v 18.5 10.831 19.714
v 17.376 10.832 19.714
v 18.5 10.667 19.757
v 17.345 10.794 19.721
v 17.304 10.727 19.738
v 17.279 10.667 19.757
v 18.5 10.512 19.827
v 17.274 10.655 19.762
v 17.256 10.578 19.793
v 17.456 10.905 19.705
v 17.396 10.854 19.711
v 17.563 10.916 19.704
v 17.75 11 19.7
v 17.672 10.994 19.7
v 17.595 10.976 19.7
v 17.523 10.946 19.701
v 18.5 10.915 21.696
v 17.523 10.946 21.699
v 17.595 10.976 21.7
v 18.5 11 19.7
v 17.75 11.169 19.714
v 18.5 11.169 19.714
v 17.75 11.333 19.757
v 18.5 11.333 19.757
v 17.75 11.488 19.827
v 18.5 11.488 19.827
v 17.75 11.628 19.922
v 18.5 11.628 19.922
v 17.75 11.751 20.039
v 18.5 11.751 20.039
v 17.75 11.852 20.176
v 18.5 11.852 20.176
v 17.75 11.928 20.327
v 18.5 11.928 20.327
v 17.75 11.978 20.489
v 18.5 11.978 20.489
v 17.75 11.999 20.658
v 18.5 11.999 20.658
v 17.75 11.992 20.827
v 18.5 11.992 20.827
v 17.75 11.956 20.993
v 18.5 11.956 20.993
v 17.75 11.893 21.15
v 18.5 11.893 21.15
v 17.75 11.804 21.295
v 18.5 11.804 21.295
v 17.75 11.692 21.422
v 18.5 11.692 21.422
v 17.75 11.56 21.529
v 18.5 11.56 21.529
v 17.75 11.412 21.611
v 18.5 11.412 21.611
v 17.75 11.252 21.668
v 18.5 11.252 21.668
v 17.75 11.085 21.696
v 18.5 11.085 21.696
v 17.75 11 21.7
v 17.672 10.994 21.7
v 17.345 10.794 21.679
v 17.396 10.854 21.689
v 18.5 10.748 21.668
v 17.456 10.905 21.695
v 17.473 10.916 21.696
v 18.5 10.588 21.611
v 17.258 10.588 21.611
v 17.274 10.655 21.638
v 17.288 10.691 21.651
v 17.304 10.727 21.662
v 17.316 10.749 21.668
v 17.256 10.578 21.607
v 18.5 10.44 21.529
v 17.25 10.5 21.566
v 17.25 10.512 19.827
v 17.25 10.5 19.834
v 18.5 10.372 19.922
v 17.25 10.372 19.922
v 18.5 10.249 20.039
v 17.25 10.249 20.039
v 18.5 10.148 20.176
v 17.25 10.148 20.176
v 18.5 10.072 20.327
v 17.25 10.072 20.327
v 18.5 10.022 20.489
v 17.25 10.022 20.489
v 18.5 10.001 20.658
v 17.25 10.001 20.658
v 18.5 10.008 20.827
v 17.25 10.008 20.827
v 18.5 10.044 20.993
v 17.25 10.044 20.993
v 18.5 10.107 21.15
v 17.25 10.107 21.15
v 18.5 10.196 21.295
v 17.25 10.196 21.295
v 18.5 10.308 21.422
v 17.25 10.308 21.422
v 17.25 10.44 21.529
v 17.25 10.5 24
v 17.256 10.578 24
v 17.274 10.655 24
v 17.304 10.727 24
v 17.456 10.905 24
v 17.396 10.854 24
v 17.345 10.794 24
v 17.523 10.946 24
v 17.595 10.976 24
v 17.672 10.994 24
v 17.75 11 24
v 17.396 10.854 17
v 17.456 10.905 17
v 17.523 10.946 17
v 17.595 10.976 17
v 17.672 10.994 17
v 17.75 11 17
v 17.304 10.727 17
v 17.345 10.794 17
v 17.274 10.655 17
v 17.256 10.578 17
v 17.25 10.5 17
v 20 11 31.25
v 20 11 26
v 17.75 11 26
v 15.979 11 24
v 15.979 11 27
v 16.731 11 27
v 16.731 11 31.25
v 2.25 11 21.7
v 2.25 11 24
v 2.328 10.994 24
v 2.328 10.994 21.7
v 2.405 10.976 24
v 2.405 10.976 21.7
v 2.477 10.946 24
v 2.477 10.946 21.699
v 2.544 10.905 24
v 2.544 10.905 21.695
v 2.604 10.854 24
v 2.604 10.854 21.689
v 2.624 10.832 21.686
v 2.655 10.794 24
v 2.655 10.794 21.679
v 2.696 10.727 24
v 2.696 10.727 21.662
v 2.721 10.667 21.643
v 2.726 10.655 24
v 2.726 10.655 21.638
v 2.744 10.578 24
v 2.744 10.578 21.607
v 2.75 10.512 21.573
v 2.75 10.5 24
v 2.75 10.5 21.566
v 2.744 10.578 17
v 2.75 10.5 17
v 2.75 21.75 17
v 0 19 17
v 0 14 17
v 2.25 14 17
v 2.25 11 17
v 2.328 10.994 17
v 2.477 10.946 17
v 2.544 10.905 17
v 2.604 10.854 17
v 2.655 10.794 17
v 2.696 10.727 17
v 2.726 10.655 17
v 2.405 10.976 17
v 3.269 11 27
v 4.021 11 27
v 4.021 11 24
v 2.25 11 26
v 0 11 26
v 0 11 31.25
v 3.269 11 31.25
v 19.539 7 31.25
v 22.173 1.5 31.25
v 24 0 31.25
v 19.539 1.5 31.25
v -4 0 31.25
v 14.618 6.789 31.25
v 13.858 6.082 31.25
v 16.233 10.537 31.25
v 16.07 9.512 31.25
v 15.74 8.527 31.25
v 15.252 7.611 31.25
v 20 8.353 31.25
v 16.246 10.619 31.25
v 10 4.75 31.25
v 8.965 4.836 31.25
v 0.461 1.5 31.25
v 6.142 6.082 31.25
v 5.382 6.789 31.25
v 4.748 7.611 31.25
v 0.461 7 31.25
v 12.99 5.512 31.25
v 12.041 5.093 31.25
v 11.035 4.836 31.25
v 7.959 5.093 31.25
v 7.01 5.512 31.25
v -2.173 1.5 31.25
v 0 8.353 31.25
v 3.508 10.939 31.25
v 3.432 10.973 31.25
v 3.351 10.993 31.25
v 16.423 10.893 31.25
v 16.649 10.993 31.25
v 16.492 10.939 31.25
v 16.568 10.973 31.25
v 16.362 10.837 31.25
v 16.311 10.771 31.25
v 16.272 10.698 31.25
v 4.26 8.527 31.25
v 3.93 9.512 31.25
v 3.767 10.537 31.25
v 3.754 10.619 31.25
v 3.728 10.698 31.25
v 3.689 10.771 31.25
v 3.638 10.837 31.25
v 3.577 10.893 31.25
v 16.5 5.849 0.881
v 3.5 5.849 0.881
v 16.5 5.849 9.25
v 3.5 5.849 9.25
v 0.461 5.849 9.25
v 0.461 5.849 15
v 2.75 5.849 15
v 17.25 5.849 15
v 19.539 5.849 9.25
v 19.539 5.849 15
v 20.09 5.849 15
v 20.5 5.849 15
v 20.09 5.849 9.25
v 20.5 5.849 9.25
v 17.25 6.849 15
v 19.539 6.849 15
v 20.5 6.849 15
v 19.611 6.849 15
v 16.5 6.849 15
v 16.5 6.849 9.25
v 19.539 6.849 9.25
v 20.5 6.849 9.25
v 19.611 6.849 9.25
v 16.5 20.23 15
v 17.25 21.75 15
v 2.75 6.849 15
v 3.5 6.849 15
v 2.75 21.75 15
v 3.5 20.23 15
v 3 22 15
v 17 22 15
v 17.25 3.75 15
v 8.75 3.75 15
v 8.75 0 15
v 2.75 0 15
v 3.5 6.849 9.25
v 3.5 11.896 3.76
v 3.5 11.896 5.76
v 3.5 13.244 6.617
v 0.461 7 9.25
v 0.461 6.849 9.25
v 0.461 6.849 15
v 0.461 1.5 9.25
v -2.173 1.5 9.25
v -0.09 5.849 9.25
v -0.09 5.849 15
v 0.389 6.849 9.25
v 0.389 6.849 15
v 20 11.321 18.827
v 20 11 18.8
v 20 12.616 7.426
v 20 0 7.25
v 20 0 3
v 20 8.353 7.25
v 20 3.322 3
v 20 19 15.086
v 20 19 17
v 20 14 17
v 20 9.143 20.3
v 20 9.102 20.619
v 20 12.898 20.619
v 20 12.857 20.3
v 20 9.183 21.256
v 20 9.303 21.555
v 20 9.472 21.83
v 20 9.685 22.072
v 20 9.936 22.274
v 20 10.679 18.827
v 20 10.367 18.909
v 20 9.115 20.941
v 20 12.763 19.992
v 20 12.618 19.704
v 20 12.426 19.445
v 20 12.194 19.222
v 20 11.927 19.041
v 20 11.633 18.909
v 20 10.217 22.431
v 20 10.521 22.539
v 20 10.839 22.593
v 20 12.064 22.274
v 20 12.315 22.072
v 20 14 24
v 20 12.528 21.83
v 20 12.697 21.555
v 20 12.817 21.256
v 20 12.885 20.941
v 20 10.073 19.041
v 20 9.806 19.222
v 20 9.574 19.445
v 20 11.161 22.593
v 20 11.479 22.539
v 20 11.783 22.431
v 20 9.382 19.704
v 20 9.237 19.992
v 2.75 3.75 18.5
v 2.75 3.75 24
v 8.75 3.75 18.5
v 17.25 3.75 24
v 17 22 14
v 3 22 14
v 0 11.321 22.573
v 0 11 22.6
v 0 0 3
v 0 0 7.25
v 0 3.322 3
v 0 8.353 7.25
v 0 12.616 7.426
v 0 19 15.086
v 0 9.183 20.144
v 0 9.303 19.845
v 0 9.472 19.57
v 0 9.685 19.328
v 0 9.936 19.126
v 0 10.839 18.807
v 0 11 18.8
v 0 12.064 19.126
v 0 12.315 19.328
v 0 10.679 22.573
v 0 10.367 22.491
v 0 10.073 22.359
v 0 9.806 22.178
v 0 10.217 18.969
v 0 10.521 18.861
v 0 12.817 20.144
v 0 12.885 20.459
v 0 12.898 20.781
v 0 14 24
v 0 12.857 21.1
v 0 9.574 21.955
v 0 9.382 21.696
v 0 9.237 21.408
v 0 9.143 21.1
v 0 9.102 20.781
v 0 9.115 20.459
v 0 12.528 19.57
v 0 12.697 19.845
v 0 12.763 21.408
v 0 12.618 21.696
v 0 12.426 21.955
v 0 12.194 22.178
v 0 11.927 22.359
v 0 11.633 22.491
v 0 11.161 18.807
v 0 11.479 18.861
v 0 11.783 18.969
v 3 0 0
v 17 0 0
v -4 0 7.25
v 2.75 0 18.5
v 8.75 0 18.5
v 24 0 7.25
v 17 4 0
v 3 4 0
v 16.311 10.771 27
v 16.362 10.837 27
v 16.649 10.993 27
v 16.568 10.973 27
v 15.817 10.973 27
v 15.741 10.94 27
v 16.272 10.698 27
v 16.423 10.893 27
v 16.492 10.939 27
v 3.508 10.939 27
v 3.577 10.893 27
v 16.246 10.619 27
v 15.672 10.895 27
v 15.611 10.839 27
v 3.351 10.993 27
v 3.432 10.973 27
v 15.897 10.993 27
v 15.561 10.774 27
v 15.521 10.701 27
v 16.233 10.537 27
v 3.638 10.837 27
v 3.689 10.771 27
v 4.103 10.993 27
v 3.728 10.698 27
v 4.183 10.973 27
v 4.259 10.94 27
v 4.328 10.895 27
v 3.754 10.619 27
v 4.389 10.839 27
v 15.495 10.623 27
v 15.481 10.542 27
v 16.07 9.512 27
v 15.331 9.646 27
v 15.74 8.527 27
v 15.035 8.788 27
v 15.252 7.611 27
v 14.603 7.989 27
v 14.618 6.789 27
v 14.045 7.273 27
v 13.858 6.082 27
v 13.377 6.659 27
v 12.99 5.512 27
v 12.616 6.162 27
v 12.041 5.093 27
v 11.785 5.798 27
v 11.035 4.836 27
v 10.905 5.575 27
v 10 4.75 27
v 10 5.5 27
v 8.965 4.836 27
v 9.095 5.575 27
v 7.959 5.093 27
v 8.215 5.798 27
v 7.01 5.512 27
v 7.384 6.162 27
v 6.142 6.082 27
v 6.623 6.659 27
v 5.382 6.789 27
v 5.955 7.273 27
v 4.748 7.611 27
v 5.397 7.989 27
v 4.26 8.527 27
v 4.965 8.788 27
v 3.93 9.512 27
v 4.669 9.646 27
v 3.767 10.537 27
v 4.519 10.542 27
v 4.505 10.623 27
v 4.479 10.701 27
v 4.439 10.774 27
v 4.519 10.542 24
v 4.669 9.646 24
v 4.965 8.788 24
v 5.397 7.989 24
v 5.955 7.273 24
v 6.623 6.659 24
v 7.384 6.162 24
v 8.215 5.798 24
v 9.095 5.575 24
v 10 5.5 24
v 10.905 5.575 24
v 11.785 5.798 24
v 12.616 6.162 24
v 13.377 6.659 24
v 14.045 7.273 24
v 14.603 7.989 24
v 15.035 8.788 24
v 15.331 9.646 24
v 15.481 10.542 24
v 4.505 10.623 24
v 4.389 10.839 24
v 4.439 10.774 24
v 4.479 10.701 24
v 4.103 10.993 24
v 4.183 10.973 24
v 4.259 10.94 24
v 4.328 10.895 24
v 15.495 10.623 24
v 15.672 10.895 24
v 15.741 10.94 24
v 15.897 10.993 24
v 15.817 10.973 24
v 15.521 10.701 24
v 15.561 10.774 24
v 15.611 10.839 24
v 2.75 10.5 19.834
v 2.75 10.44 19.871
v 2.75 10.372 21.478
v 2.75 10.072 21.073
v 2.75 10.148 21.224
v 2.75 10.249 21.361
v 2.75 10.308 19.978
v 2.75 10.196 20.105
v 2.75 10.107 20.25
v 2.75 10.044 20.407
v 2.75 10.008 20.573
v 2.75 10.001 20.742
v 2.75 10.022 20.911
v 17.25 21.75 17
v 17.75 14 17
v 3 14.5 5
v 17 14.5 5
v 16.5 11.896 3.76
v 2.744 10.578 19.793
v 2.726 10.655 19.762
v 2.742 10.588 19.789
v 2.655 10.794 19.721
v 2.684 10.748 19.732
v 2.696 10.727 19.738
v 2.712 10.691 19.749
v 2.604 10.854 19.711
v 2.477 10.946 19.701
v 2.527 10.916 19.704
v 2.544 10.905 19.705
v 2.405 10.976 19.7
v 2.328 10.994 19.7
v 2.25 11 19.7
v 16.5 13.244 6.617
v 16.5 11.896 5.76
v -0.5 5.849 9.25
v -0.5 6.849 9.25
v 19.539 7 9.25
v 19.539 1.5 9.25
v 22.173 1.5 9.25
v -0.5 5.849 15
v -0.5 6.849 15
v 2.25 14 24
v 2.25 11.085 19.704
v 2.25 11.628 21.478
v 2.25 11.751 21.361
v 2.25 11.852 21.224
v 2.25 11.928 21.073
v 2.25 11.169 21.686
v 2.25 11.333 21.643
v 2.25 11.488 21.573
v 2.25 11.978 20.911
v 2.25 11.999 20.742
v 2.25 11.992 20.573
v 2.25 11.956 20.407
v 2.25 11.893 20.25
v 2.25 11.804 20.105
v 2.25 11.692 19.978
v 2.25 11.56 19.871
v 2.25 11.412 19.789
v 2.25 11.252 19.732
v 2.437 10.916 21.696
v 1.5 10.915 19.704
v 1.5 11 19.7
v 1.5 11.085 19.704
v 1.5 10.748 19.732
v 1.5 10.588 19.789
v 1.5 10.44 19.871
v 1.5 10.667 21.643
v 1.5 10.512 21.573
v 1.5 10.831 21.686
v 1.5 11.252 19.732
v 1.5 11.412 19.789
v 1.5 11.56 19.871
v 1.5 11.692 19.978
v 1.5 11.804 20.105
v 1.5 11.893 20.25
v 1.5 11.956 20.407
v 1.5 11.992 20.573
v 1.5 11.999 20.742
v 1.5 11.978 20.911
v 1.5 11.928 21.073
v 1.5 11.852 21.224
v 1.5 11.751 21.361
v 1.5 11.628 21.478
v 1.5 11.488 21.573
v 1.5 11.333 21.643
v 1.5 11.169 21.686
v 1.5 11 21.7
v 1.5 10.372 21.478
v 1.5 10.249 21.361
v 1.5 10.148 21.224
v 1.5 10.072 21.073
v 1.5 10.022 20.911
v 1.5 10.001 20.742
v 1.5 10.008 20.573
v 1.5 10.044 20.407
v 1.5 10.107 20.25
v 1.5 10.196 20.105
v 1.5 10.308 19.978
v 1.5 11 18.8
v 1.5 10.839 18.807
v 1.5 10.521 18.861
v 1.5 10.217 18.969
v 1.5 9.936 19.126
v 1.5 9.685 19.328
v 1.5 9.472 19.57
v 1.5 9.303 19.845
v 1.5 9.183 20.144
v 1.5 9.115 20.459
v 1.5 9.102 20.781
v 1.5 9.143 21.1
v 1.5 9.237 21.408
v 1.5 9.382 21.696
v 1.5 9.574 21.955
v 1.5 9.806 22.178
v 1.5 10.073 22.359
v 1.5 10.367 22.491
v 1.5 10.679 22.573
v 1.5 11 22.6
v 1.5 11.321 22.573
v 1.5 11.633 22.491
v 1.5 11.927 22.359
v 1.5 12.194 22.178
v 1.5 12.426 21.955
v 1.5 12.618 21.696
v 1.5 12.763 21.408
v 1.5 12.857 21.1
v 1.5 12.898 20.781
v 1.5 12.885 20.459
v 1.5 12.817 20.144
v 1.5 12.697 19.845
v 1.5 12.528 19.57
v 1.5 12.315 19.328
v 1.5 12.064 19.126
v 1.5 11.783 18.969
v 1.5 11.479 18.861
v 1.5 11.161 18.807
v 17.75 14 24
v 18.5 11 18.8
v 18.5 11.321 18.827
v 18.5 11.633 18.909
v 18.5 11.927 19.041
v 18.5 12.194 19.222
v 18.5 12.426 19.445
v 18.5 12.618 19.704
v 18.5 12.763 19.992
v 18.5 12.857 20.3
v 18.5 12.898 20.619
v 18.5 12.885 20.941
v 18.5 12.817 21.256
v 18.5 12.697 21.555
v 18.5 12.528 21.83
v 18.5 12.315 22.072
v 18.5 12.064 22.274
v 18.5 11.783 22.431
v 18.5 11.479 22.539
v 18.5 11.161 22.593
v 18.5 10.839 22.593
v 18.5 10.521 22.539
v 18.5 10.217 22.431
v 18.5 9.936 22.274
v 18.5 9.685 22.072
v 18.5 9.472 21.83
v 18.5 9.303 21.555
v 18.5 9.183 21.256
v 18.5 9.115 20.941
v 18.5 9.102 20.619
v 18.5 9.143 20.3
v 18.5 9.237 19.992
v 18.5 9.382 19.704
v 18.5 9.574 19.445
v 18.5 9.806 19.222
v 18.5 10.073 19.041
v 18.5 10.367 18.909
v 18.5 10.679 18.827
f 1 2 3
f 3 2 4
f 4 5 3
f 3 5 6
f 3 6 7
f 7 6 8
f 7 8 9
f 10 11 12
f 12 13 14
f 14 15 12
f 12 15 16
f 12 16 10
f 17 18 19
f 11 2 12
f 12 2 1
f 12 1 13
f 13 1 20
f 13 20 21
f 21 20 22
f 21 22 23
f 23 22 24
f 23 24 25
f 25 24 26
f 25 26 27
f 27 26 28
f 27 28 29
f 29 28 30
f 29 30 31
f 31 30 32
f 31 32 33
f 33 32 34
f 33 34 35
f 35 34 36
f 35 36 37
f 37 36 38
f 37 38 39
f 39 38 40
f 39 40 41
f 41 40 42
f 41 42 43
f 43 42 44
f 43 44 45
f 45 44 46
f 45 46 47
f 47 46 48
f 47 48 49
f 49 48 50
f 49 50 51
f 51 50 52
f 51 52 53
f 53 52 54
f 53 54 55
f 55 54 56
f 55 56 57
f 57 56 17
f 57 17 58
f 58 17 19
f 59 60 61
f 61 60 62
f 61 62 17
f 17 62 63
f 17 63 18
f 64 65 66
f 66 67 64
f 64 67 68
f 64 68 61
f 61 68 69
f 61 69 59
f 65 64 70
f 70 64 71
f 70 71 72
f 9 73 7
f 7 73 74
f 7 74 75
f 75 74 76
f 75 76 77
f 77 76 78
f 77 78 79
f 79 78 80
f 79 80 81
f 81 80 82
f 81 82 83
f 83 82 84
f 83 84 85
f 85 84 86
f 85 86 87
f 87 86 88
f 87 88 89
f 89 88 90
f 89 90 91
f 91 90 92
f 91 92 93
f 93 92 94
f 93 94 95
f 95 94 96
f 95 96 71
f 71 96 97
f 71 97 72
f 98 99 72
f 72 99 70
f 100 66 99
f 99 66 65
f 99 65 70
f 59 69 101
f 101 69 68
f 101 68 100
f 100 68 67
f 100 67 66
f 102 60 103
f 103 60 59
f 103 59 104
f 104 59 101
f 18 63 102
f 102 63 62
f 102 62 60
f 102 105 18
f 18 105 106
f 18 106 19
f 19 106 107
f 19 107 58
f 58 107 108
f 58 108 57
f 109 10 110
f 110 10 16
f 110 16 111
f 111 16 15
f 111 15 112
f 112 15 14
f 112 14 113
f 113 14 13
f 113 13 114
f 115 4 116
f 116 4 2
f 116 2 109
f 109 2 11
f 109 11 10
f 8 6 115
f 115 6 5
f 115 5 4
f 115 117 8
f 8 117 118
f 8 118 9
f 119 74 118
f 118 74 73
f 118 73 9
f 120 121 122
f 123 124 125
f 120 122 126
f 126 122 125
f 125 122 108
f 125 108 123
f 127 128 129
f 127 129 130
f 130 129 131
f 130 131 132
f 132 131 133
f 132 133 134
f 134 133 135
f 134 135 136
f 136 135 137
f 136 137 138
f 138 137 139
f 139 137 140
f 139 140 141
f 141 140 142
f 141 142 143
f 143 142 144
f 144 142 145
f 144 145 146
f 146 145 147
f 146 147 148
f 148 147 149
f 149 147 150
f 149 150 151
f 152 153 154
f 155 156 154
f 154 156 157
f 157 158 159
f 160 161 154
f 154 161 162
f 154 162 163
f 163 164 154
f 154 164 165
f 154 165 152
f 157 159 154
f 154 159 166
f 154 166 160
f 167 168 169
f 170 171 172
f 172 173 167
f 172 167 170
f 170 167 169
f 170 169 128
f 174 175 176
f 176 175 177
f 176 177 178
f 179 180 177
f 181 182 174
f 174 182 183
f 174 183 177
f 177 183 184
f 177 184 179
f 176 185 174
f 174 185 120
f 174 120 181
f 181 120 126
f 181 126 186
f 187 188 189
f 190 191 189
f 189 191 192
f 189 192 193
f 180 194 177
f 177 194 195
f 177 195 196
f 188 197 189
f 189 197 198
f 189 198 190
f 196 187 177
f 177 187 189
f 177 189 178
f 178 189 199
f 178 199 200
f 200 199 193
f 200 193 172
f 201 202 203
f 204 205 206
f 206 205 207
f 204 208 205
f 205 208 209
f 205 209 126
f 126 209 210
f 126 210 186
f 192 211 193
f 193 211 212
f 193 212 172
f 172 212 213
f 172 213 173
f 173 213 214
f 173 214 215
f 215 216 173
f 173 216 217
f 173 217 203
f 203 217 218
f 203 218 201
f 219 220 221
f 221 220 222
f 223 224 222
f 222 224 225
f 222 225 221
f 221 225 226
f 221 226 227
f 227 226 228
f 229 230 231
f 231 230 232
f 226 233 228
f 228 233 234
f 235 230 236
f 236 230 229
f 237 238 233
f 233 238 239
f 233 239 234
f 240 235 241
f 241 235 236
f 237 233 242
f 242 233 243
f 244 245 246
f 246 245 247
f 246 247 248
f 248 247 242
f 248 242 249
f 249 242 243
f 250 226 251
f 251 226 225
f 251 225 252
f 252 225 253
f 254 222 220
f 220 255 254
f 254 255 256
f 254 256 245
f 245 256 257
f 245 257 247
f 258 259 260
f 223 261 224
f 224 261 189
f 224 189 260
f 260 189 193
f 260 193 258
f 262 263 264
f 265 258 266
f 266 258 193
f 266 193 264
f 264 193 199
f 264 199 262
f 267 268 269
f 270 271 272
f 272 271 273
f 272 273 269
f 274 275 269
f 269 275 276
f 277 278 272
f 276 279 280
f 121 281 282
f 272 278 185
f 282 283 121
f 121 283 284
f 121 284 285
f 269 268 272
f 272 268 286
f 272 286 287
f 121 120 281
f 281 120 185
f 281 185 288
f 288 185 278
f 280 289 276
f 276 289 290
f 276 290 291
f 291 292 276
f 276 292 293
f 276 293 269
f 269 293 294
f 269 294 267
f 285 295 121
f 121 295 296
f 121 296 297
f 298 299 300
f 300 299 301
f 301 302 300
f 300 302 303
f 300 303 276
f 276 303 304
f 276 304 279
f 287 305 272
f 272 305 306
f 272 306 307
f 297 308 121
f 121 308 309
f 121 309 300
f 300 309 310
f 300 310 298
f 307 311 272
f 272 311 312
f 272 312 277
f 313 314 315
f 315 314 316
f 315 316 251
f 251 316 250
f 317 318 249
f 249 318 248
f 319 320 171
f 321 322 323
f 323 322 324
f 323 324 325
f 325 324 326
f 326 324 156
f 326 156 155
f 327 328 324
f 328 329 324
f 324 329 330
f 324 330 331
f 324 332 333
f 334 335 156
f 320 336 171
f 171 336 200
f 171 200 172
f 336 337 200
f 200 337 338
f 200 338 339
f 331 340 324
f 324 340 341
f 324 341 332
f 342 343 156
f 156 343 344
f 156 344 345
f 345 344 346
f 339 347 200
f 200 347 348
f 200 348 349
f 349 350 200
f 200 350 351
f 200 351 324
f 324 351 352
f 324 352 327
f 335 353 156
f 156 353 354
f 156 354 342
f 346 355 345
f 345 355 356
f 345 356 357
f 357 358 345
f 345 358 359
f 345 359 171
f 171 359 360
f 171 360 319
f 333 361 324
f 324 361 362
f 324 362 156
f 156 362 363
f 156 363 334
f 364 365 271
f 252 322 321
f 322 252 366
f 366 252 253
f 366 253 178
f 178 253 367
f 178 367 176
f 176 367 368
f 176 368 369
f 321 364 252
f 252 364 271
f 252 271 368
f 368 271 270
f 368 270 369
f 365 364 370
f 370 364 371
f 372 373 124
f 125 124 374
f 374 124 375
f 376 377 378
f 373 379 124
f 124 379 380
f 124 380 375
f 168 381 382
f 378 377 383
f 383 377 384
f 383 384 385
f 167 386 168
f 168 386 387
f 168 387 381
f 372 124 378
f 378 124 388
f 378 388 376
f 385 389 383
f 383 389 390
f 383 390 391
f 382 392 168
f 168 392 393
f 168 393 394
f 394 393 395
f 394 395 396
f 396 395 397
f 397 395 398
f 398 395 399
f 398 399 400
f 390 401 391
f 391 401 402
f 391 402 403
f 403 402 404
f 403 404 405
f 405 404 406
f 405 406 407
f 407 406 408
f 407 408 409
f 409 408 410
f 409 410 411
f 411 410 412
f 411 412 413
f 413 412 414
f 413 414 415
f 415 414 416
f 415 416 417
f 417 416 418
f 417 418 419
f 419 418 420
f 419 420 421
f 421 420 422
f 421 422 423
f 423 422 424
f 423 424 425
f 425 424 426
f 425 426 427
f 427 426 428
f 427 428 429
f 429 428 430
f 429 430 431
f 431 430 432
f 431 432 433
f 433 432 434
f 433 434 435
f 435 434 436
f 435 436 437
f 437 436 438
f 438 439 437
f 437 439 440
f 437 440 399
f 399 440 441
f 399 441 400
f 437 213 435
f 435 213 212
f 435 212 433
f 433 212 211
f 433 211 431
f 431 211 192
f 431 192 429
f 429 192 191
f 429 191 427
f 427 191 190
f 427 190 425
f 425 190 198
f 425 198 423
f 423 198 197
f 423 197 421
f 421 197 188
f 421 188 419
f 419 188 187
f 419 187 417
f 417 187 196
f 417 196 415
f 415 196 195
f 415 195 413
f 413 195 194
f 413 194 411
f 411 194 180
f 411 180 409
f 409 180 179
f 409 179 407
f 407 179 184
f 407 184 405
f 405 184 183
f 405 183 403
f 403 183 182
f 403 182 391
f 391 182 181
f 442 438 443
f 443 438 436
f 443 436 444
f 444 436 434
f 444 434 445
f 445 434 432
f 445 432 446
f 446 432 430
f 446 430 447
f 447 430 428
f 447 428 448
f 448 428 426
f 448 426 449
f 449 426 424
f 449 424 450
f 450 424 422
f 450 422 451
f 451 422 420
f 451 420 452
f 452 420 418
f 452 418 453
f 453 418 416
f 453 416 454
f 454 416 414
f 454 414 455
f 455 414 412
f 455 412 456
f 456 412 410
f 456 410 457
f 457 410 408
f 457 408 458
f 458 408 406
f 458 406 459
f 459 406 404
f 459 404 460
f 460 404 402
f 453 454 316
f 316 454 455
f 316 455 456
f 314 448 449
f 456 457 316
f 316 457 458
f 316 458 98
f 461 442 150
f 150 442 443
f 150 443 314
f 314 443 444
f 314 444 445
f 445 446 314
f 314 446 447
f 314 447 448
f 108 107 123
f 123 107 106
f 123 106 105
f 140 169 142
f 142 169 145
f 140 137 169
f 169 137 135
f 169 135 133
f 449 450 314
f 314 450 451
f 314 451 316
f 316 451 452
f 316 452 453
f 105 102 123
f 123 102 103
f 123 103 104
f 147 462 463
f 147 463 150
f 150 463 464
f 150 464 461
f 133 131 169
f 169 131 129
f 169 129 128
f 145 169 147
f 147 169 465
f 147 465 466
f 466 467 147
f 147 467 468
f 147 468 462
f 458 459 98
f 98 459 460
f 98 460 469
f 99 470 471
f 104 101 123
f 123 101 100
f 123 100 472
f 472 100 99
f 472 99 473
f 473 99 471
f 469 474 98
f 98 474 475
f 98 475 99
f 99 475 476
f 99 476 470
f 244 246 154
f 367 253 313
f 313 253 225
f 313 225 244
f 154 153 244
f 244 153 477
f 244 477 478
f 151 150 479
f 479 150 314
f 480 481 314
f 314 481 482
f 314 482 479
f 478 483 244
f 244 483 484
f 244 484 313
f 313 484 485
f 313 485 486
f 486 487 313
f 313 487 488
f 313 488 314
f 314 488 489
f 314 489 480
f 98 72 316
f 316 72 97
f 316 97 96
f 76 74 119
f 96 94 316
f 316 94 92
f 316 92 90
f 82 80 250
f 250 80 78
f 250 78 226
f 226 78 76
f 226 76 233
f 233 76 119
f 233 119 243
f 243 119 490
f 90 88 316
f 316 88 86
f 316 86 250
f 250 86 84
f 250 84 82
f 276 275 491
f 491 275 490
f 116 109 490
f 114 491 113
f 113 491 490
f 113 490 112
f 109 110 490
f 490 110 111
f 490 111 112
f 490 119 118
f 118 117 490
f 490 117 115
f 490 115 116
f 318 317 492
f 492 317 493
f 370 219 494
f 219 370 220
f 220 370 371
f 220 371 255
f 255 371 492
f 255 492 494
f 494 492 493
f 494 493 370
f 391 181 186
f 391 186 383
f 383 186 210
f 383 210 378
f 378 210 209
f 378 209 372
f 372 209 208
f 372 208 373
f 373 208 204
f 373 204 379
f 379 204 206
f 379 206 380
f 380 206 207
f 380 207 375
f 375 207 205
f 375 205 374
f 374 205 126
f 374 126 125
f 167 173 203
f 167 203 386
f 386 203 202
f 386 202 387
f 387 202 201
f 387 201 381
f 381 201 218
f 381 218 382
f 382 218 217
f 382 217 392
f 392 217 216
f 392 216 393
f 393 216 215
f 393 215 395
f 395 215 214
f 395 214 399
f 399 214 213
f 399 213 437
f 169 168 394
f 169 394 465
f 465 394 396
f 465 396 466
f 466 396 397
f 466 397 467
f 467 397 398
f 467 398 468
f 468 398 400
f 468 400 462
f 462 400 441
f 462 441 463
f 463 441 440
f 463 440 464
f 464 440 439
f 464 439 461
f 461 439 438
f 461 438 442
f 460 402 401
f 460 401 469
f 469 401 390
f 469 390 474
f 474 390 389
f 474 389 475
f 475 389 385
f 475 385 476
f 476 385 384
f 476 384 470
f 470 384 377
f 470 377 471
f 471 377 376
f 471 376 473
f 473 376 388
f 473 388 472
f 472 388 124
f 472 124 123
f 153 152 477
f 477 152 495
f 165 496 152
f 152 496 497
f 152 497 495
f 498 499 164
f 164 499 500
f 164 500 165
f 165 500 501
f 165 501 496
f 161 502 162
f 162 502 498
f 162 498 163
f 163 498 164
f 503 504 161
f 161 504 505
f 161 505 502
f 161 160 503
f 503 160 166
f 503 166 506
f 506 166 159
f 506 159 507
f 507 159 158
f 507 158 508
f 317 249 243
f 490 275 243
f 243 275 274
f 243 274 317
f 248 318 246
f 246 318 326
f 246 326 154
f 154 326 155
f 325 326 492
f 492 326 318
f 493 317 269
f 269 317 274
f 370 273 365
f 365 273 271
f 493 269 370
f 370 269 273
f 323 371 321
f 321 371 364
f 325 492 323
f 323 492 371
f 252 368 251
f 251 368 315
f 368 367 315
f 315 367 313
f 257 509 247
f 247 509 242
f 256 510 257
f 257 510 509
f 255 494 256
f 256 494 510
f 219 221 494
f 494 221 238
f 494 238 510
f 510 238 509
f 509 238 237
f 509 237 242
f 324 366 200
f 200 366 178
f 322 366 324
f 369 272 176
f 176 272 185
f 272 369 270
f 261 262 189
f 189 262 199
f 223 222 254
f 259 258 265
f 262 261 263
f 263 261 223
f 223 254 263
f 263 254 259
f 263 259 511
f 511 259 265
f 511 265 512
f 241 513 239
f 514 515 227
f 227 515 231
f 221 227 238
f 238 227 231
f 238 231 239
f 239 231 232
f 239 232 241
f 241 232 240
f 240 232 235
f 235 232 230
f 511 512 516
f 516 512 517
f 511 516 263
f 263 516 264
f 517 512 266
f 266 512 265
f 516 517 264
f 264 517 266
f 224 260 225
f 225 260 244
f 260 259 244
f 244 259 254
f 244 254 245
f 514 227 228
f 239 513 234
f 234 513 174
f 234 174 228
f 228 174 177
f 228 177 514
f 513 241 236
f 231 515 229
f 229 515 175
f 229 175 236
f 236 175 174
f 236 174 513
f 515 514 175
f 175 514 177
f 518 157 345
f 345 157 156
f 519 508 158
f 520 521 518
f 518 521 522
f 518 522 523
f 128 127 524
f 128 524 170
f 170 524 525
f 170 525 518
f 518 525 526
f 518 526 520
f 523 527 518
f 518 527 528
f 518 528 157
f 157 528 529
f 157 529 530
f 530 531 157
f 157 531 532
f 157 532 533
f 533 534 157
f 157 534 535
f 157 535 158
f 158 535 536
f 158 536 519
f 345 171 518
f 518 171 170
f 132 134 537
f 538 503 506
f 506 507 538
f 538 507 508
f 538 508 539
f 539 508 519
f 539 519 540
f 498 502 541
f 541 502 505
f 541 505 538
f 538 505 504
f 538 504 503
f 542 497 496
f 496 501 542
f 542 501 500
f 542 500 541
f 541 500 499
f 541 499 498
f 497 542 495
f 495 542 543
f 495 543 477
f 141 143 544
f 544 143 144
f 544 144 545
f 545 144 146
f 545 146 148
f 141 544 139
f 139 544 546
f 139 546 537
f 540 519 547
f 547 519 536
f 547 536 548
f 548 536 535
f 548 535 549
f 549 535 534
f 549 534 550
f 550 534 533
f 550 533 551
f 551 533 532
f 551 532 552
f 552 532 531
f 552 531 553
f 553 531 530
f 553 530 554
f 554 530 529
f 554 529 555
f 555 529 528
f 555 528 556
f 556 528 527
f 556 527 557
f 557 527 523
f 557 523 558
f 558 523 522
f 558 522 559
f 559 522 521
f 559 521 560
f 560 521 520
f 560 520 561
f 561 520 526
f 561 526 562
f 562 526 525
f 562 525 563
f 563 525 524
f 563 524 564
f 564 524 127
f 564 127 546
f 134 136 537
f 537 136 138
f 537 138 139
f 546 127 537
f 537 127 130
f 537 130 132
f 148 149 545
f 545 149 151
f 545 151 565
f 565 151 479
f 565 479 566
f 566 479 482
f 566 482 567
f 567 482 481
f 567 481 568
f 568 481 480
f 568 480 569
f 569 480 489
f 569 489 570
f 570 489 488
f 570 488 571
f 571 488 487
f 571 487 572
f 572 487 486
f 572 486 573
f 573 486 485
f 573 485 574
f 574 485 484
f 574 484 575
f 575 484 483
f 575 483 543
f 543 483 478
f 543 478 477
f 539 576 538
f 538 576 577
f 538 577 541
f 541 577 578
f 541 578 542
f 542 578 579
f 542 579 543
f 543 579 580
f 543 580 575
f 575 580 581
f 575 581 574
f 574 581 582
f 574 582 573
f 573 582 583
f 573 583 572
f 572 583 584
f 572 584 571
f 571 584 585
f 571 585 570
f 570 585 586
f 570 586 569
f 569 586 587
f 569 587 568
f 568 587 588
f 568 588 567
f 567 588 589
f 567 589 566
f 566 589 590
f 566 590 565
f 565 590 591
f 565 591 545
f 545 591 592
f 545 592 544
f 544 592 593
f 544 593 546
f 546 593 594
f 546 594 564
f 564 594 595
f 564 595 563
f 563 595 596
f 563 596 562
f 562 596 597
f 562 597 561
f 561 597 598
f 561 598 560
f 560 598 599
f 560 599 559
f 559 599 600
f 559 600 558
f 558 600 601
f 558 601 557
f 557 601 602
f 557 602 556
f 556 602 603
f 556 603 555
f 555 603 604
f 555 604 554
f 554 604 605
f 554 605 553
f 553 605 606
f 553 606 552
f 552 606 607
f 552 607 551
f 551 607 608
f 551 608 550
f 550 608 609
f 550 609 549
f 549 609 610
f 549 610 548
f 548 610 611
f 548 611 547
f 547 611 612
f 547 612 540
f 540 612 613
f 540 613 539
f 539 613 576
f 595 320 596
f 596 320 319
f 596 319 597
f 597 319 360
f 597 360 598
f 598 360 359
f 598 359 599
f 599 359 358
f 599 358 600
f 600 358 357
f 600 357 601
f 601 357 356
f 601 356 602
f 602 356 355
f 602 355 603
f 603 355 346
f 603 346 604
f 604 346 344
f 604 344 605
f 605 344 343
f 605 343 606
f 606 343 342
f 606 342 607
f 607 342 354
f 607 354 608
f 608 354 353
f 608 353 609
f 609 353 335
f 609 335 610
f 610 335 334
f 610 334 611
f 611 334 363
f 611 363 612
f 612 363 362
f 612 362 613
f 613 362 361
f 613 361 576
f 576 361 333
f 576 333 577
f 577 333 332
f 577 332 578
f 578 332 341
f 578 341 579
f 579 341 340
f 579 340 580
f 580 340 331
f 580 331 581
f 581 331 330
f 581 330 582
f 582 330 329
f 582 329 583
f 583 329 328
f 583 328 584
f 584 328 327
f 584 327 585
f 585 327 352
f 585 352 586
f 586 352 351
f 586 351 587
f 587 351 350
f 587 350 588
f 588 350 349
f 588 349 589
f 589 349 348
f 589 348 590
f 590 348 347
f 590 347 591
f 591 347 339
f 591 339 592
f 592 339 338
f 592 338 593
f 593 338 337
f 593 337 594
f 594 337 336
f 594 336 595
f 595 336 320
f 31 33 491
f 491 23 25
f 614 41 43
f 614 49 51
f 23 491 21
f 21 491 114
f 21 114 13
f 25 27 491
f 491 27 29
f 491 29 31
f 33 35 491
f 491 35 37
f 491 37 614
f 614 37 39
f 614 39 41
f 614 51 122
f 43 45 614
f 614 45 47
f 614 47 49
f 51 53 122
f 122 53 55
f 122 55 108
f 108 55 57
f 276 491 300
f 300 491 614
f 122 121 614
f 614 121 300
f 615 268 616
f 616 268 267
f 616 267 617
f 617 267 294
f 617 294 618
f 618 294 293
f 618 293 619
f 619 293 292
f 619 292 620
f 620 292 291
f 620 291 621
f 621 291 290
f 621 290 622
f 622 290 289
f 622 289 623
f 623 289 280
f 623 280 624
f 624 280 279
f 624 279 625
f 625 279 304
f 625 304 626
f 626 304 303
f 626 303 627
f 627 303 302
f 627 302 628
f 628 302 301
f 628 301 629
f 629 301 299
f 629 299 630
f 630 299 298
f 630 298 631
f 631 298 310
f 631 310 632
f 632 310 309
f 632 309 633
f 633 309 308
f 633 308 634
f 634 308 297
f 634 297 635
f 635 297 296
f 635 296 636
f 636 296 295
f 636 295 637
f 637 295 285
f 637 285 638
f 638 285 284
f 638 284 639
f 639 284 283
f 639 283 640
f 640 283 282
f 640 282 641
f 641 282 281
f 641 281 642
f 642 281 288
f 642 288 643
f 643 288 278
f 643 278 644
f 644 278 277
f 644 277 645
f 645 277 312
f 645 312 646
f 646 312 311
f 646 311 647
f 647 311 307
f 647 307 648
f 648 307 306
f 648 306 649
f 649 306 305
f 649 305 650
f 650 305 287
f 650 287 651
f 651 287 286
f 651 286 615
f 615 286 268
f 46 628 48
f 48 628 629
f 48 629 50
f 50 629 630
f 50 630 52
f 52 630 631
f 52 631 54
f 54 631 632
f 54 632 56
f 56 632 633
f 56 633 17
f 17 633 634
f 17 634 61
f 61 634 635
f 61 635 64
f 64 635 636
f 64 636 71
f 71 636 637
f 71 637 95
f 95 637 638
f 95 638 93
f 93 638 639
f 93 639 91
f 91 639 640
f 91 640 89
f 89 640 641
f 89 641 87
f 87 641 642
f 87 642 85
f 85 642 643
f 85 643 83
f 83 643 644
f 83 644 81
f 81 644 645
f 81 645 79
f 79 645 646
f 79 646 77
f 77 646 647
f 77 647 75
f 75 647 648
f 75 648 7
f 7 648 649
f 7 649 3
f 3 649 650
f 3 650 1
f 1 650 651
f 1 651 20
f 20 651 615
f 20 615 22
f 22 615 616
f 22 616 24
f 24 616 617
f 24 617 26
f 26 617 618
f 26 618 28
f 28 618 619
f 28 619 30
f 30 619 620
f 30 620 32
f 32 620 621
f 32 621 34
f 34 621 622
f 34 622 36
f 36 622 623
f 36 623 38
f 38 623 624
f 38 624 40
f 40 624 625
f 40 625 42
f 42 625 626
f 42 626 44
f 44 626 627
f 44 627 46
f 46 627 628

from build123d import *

# Parameters (mm, degrees)
SKIZZE1_W                             = 20
SKIZZE1_H                             = 22
AUFSATZ_LINEAR_AUSTRAGEN1_DEPTH       = 35
SKIZZE2_R                             = 5.5
SCHNITT_LINEAR_AUSTRAGEN1_DEPTH       = 11
SKIZZE3_R                             = 6.25
SCHNITT_LINEAR_AUSTRAGEN2_DEPTH       = 8
SKIZZE5_W                             = 14.5
SKIZZE5_H                             = 18.25
SCHNITT_LINEAR_AUSTRAGEN3_DEPTH       = 9
SKIZZE13_W                            = 20
SKIZZE13_H                            = 11
SCHNITT_LINEAR_AUSTRAGEN6_DEPTH       = 18
SCHNITT_LINEAR_AUSTRAGEN7_DEPTH       = 46.923850013
VERRUNDUNG1_R                         = 0.5
FASE1_SIZE                            = 3
FASE2_SIZE                            = 3
FASE3_SIZE                            = 3
FASE4_SIZE                            = 1.5
SKIZZE17_W                            = 6
SKIZZE17_H                            = 3.5
SCHNITT_LINEAR_AUSTRAGEN8_DEPTH       = 45.25
SCHNITT_LINEAR_AUSTRAGEN9_REACH       = 47.924
SKIZZE18_W                            = 3.75
SKIZZE18_H                            = 11
SCHNITT_LINEAR_AUSTRAGEN10_DEPTH      = 6.5
SCHNITT_LINEAR_AUSTRAGEN10_DEPTH_BACK = 6.5
AUFSATZ_LINEAR_AUSTRAGEN2_DEPTH       = 24
SCHNITT_LINEAR_AUSTRAGEN11_DEPTH      = 22
SKIZZE26_W                            = 5.75
SKIZZE26_H                            = 1
SCHNITT_LINEAR_AUSTRAGEN12_DEPTH      = 4
AUFSATZ_LINEAR_AUSTRAGEN3_DEPTH       = 14.25
SKIZZE28_W                            = 2.25
SKIZZE28_H                            = 3
AUFSATZ_LINEAR_AUSTRAGEN4_DEPTH       = 7
AUFSATZ_LINEAR_AUSTRAGEN6_DEPTH       = 2.25
SCHNITT_LINEAR_AUSTRAGEN13_REACH      = 47.128
SKIZZE32_R                            = 1
SCHNITT_LINEAR_START                  = 10
SKIZZE33_R                            = 1.9
SCHNITT_LINEAR_AUSTRAGEN14_DEPTH      = 1.5
SKIZZE34_R                            = 1.9
SCHNITT_LINEAR_AUSTRAGEN15_DEPTH      = 1.5


with BuildPart() as part:
    # Skizze1 → Aufsatz-Linear austragen1 (new body)
    with BuildSketch(Plane.XY):
        with Locations((10, 11)):
            Rectangle(SKIZZE1_W, SKIZZE1_H)
    extrude(amount=AUFSATZ_LINEAR_AUSTRAGEN1_DEPTH)

    # Skizze2 → Schnitt-Linear austragen1 (cut)
    with BuildSketch(Plane.XY.offset(35)):
        with Locations((10, 11)):
            Circle(SKIZZE2_R)
    extrude(amount=-SCHNITT_LINEAR_AUSTRAGEN1_DEPTH, mode=Mode.SUBTRACT)

    # Skizze3 → Schnitt-Linear austragen2 (cut)
    with BuildSketch(Plane.XY.offset(35)):
        with Locations((10, 11)):
            Circle(SKIZZE3_R)
    extrude(amount=-SCHNITT_LINEAR_AUSTRAGEN2_DEPTH, mode=Mode.SUBTRACT)

    # Skizze5 → Schnitt-Linear austragen3 (cut)
    with BuildSketch(Plane.XY.offset(24)):
        with Locations((10, 12.875)):
            Rectangle(SKIZZE5_W, SKIZZE5_H)
    extrude(amount=-SCHNITT_LINEAR_AUSTRAGEN3_DEPTH, mode=Mode.SUBTRACT)

    # Skizze13 → Schnitt-Linear austragen6 (cut)
    with BuildSketch(Plane.XY.offset(35)):
        with Locations((10, 16.5)):
            Rectangle(SKIZZE13_W, SKIZZE13_H)
    extrude(amount=-SCHNITT_LINEAR_AUSTRAGEN6_DEPTH, mode=Mode.SUBTRACT)

    # Skizze16 → Schnitt-Linear austragen7 (cut, through all)
    with BuildSketch(Plane.ZY):
        Polygon((14, 22), (5, 14.5), (0, 4), (0, 22), align=None)
    extrude(amount=-SCHNITT_LINEAR_AUSTRAGEN7_DEPTH, mode=Mode.SUBTRACT)

    # Verrundung1
    verrundung1_edges = [part.edges().sort_by_distance(p)[0] for p in [
        (17.25, 11, 20.5),
        (3.75, 11, 31),
        (2.75, 11, 20.5),
        (4.5, 11, 25.5),
        (16.25, 11, 31),
        (15.5, 11, 25.5),
    ]]
    fillet(verrundung1_edges, radius=VERRUNDUNG1_R)

    # Fase1
    fase1_edges = [part.edges().sort_by_distance(p)[0] for p in [
        (20, 22, 15.5),
        (0, 22, 15.5),
    ]]
    chamfer(fase1_edges, length=FASE1_SIZE)

    # Fase2
    fase2_edges = [part.edges().sort_by_distance(p)[0] for p in [
        (0, 16.75, 7.7),
        (20, 16.75, 7.7),
    ]]
    chamfer(fase2_edges, length=FASE2_SIZE)

    # Fase3
    fase3_edges = [part.edges().sort_by_distance(p)[0] for p in [
        (20, 6.012857042, 0.958503353),
        (20, 2, 0),
        (0, 6.012857042, 0.958503353),
        (0, 2, 0),
    ]]
    chamfer(fase3_edges, length=FASE3_SIZE)

    # Fase4
    fase4_edges = [part.edges().sort_by_distance(p)[0] for p in [
        (20, 11, 26),
        (0, 11, 26),
    ]]
    chamfer(fase4_edges, length=FASE4_SIZE)

    # Skizze17 → Schnitt-Linear austragen8 (cut, through all)
    with BuildSketch(Plane(origin=(0, 3.75, 0), x_dir=(1, 0, 0), z_dir=(0, 1, 0))):
        with Locations((5.75, -16.75)):
            Rectangle(SKIZZE17_W, SKIZZE17_H)
    extrude(amount=-SCHNITT_LINEAR_AUSTRAGEN8_DEPTH, mode=Mode.SUBTRACT)

    # Schnitt-Linear austragen9: up to this face of the body (flat: up to its plane)
    schnitt_linear_austragen9_end = Plane(part.part.faces().sort_by_distance((20, 6.280299508, 18.20769637))[0])
    # Skizze18 → Schnitt-Linear austragen9 (cut, up to the picked face)
    with BuildSketch(Plane.ZY, mode=Mode.PRIVATE) as schnitt_linear_austragen9_sk1:
        with Locations((33.125, 5.5)):
            Rectangle(SKIZZE18_W, SKIZZE18_H)
    schnitt_linear_austragen9_tool1 = split(extrude(schnitt_linear_austragen9_sk1.sketch, amount=-SCHNITT_LINEAR_AUSTRAGEN9_REACH, mode=Mode.PRIVATE), bisect_by=schnitt_linear_austragen9_end, keep=Keep.BOTH, mode=Mode.PRIVATE)
    add(schnitt_linear_austragen9_tool1.solids().sort_by(Axis((0, 5.5, 33.125), (1, 0, 0)))[0], mode=Mode.SUBTRACT)

    # Skizze22 → Schnitt-Linear austragen10 (cut, two sides)
    with BuildSketch(Plane.ZY.offset(-10)) as schnitt_linear_austragen10_sk:
        Polygon((15, 20.229916775), (6.617209038, 13.24425764), (5.760028677, 11.896060222), (3.760028677, 11.896060222), (0.88063989, 5.849343769), (6.035195751, 5.849343769), (15, 5.849343769), align=None)
    extrude(amount=SCHNITT_LINEAR_AUSTRAGEN10_DEPTH, mode=Mode.SUBTRACT)
    extrude(schnitt_linear_austragen10_sk.sketch, amount=-SCHNITT_LINEAR_AUSTRAGEN10_DEPTH_BACK, mode=Mode.SUBTRACT)

    # Skizze23 → Aufsatz-Linear austragen2 (add)
    with BuildSketch(Plane.XY.offset(31.25)):
        Polygon((0, 8.353013166), (-4, 0), (0, 0), align=None)
    aufsatz_linear_austragen2 = extrude(amount=-AUFSATZ_LINEAR_AUSTRAGEN2_DEPTH)

    # Spiegeln1: Aufsatz-Linear austragen2 across plane
    add(aufsatz_linear_austragen2.mirror(Plane.ZY.offset(-10)))

    # Skizze24 → Schnitt-Linear austragen11 (cut)
    with BuildSketch(Plane.XY.offset(31.25)):
        Polygon((0.460828855, 1.5), (-2.172951263, 1.5), (0.460828855, 7), align=None)
    schnitt_linear_austragen11 = extrude(amount=-SCHNITT_LINEAR_AUSTRAGEN11_DEPTH, mode=Mode.SUBTRACT)

    # Skizze26 → Schnitt-Linear austragen12 (cut)
    with BuildSketch(Plane.ZY.offset(-16.5)):
        with Locations((12.125, 6.349343769)):
            Rectangle(SKIZZE26_W, SKIZZE26_H)
    schnitt_linear_austragen12 = extrude(amount=-SCHNITT_LINEAR_AUSTRAGEN12_DEPTH, mode=Mode.SUBTRACT)

    # Spiegeln2: Schnitt-Linear austragen12 across plane
    add(schnitt_linear_austragen12.mirror(Plane.ZY.offset(-10)), mode=Mode.SUBTRACT)

    # Spiegeln3: Schnitt-Linear austragen11 across plane
    add(schnitt_linear_austragen11.mirror(Plane.ZY.offset(-10)), mode=Mode.SUBTRACT)

    # Skizze27 → Aufsatz-Linear austragen3 (add)
    with BuildSketch(Plane.XY.offset(17)):
        Polygon((0, 9.5), (1.5, 11), (0, 11), align=None)
    aufsatz_linear_austragen3 = extrude(amount=AUFSATZ_LINEAR_AUSTRAGEN3_DEPTH)

    # Spiegeln4: Aufsatz-Linear austragen3 across plane
    add(aufsatz_linear_austragen3.mirror(Plane.ZY.offset(-10)))

    # Skizze28 → Aufsatz-Linear austragen4 (add)
    with BuildSketch(Plane.XY.offset(17)):
        with Locations((1.125, 12.5)):
            Rectangle(SKIZZE28_W, SKIZZE28_H)
    aufsatz_linear_austragen4 = extrude(amount=AUFSATZ_LINEAR_AUSTRAGEN4_DEPTH)

    # Skizze31 → Aufsatz-Linear austragen6 (add)
    with BuildSketch(Plane.ZY):
        Polygon((24, 14), (26, 11), (24, 11), align=None)
    aufsatz_linear_austragen6 = extrude(amount=-AUFSATZ_LINEAR_AUSTRAGEN6_DEPTH)

    # Schnitt-Linear austragen13: up to this face of the body (flat: up to its plane)
    schnitt_linear_austragen13_end = Plane(part.part.faces().sort_by_distance((2.75, 8.51118677, 18.308365759))[0])
    # Skizze32 → Schnitt-Linear austragen13 (cut, up to the picked face)
    with BuildSketch(Plane.ZY, mode=Mode.PRIVATE) as schnitt_linear_austragen13_sk1:
        with Locations((20.7, 11)):
            Circle(SKIZZE32_R)
    schnitt_linear_austragen13_tool1 = split(extrude(schnitt_linear_austragen13_sk1.sketch, amount=-SCHNITT_LINEAR_AUSTRAGEN13_REACH, mode=Mode.PRIVATE), bisect_by=schnitt_linear_austragen13_end, keep=Keep.BOTH, mode=Mode.PRIVATE)
    schnitt_linear_austragen13 = schnitt_linear_austragen13_tool1.solids().sort_by(Axis((0, 11, 20.7), (1, 0, 0)))[0]
    add(schnitt_linear_austragen13, mode=Mode.SUBTRACT)

    # Skizze33 → Schnitt-Linear austragen14 (cut)
    with BuildSketch(Plane.ZY.offset(-10).offset(SCHNITT_LINEAR_START)):
        with Locations(Location((20.7, 11, 0), (0, 0, 180))):
            Circle(SKIZZE33_R)
    extrude(amount=-SCHNITT_LINEAR_AUSTRAGEN14_DEPTH, mode=Mode.SUBTRACT)

    # Spiegeln6: Aufsatz-Linear austragen4, Aufsatz-Linear austragen6 across plane
    add(aufsatz_linear_austragen4.mirror(Plane.ZY.offset(-10)))
    add(aufsatz_linear_austragen6.mirror(Plane.ZY.offset(-10)))

    # Spiegeln8: Schnitt-Linear austragen13 across plane
    add(schnitt_linear_austragen13.mirror(Plane.ZY.offset(-10)), mode=Mode.SUBTRACT)

    # Skizze34 → Schnitt-Linear austragen15 (cut)
    with BuildSketch(Plane(origin=(20, 0, 0), x_dir=(0, 0, -1), z_dir=(1, 0, 0))):
        with Locations((-20.7, 11)):
            Circle(SKIZZE34_R)
    extrude(amount=-SCHNITT_LINEAR_AUSTRAGEN15_DEPTH, mode=Mode.SUBTRACT)


solid = part.part
